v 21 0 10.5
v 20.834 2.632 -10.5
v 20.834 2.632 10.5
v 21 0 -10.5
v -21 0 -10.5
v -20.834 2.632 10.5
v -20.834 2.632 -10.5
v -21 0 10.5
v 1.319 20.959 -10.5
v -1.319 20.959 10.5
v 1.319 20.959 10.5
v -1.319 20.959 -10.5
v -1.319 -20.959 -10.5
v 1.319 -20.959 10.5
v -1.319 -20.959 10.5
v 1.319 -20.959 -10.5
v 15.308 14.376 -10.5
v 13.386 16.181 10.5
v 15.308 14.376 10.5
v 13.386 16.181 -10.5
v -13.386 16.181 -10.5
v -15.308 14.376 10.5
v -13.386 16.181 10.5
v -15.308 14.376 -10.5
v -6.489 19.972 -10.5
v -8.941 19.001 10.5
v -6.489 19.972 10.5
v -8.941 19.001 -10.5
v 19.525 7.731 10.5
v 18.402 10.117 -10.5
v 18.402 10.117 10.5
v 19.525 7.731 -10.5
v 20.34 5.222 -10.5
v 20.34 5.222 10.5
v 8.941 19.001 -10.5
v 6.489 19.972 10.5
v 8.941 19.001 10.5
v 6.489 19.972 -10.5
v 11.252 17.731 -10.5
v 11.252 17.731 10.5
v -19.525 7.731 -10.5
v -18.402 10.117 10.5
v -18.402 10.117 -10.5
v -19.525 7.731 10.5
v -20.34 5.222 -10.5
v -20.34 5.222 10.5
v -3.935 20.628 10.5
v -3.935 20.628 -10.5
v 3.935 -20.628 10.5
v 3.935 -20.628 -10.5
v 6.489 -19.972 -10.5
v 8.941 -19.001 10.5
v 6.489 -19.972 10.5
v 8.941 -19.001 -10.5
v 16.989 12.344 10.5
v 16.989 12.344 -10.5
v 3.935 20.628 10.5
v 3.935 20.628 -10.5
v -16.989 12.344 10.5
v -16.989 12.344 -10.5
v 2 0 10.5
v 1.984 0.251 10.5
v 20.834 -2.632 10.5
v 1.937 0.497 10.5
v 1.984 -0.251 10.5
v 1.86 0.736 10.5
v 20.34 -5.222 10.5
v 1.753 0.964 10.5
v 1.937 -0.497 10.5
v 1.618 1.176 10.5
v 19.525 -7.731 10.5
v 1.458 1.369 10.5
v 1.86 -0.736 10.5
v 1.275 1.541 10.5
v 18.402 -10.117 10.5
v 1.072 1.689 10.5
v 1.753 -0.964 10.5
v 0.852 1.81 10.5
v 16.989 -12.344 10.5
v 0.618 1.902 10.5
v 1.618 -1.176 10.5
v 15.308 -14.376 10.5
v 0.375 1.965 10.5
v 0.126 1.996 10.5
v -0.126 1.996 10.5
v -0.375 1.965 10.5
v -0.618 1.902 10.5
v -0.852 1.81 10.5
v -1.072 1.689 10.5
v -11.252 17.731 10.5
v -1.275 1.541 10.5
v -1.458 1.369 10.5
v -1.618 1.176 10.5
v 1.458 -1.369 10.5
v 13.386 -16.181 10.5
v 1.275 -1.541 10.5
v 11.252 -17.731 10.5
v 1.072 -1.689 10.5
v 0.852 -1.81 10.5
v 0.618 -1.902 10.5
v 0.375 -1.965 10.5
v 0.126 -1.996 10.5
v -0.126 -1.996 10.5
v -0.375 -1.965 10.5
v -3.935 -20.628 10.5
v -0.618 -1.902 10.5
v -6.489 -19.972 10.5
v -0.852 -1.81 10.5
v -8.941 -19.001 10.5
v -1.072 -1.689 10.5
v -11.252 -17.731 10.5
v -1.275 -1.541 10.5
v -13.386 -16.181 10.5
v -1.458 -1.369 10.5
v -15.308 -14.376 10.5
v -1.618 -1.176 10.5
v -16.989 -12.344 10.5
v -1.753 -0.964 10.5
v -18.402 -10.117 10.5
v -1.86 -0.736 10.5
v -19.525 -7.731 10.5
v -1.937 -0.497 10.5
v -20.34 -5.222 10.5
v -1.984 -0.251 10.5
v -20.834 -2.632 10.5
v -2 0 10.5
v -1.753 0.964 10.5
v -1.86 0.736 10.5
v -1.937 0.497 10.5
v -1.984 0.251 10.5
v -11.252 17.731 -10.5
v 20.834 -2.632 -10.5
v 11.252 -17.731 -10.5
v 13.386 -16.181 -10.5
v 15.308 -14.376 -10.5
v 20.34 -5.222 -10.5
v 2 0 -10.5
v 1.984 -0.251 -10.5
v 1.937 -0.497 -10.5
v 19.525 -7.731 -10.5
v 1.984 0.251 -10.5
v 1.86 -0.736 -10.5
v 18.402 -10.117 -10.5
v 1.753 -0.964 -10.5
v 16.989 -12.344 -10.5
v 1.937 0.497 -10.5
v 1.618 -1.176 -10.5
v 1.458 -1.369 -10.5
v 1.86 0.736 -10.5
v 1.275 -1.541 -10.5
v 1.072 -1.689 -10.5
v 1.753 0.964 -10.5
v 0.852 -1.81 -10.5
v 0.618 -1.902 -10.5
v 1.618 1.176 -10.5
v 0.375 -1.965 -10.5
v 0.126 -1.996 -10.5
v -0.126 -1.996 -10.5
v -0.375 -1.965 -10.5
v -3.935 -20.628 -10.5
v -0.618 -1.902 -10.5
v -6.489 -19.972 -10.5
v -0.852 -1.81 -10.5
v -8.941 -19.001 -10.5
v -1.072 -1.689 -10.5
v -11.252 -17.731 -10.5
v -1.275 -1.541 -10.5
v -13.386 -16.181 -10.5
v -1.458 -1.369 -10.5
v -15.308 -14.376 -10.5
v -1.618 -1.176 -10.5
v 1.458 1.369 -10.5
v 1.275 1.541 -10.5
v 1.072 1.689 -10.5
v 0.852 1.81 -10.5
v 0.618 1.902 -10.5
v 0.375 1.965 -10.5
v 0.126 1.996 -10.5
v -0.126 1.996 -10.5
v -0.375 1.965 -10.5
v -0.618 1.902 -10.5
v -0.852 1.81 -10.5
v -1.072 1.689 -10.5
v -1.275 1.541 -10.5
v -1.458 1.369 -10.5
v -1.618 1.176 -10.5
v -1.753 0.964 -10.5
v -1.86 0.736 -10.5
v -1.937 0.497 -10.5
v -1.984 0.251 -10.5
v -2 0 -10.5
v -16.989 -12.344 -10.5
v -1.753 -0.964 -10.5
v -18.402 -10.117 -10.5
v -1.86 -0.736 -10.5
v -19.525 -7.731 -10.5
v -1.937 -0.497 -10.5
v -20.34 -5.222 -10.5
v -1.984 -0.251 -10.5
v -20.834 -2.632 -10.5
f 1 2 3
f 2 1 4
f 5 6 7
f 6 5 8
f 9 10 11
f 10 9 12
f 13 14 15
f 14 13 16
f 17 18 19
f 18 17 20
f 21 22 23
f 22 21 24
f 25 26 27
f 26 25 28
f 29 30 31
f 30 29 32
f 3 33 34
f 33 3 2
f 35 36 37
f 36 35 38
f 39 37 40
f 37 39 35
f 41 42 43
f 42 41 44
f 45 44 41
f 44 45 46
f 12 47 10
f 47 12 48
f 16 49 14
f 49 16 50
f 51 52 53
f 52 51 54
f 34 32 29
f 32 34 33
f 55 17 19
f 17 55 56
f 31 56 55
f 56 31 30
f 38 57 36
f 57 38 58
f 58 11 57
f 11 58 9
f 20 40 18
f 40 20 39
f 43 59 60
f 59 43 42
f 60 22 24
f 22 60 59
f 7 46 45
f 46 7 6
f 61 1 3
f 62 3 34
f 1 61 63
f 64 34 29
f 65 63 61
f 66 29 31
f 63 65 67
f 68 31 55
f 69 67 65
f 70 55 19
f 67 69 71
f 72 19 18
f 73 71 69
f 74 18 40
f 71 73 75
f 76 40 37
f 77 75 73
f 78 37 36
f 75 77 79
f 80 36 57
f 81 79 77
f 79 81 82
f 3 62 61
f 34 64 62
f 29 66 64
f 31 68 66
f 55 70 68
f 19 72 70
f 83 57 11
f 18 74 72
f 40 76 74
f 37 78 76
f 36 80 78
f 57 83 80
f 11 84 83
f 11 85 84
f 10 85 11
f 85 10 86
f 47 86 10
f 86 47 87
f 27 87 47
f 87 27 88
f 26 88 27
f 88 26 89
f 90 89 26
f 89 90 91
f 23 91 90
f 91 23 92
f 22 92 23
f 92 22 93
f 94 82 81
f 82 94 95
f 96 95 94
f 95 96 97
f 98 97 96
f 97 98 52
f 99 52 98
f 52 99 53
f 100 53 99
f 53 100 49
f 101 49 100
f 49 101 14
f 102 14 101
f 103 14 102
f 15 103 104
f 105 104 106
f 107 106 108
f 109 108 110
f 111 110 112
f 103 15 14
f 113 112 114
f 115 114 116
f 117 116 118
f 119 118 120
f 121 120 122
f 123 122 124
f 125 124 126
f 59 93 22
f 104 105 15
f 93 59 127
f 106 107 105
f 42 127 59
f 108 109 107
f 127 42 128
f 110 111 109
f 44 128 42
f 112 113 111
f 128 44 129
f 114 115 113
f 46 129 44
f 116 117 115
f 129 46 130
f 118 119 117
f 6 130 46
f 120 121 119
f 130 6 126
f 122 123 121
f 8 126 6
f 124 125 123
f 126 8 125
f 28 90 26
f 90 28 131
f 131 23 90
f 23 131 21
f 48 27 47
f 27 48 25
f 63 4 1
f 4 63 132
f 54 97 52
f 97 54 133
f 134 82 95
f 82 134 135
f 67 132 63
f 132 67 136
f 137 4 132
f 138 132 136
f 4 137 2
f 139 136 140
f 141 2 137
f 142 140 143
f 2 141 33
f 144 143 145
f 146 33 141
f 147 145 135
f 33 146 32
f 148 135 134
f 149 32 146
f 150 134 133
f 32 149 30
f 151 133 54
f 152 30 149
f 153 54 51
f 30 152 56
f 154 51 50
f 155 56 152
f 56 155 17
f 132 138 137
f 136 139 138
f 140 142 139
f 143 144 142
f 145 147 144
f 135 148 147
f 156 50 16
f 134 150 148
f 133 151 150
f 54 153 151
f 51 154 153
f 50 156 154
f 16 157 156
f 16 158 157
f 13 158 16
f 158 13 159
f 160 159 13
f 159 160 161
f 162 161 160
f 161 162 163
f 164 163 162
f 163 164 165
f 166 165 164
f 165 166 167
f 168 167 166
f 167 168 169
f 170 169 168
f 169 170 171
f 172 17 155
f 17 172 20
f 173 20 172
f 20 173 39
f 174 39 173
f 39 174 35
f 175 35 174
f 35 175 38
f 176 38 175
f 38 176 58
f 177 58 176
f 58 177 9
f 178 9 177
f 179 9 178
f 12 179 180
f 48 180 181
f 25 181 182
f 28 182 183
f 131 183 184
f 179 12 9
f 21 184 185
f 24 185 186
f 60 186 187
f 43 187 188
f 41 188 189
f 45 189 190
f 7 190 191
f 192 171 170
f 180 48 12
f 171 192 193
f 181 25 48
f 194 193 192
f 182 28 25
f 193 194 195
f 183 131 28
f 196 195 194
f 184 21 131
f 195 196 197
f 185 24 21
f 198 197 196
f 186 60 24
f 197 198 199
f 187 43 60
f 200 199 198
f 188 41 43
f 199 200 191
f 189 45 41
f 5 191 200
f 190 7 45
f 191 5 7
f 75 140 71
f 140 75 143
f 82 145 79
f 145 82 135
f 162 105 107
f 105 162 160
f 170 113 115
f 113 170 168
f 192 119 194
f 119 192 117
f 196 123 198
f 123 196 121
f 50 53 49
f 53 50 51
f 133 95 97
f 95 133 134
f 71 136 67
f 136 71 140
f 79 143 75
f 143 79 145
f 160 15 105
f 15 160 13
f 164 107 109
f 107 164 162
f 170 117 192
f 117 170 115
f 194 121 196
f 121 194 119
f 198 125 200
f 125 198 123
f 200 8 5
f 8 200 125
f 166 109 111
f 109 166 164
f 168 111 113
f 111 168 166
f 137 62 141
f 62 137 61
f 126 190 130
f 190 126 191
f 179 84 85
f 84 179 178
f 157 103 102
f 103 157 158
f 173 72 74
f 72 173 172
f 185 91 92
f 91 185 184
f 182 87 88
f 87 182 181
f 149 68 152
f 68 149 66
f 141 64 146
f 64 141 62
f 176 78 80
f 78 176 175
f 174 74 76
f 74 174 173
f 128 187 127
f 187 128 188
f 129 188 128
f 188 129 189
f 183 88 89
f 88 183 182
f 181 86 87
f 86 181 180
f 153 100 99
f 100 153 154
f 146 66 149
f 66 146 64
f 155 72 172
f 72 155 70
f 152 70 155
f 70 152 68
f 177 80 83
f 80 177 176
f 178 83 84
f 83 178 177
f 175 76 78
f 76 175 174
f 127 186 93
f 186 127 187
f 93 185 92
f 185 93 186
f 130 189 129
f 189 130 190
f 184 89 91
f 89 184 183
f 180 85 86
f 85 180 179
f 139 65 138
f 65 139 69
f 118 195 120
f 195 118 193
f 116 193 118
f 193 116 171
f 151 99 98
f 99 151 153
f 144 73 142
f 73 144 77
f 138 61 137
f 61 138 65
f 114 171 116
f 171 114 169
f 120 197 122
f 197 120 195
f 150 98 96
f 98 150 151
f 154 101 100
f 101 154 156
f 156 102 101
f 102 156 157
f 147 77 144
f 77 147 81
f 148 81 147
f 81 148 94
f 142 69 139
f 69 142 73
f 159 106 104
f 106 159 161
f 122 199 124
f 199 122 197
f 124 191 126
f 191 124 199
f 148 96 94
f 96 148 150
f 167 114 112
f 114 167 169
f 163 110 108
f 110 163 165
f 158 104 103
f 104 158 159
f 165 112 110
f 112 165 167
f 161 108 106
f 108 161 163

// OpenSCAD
$fn = 50;


difference() {
	union() {
		translate(v = [0, 0, -10.5000000000]) {
			cylinder(h = 21, r = 21.0000000000);
		}
	}
	union() {
		translate(v = [0, 0, -100.0000000000]) {
			cylinder(h = 200, r = 2);
		}
	}
}
